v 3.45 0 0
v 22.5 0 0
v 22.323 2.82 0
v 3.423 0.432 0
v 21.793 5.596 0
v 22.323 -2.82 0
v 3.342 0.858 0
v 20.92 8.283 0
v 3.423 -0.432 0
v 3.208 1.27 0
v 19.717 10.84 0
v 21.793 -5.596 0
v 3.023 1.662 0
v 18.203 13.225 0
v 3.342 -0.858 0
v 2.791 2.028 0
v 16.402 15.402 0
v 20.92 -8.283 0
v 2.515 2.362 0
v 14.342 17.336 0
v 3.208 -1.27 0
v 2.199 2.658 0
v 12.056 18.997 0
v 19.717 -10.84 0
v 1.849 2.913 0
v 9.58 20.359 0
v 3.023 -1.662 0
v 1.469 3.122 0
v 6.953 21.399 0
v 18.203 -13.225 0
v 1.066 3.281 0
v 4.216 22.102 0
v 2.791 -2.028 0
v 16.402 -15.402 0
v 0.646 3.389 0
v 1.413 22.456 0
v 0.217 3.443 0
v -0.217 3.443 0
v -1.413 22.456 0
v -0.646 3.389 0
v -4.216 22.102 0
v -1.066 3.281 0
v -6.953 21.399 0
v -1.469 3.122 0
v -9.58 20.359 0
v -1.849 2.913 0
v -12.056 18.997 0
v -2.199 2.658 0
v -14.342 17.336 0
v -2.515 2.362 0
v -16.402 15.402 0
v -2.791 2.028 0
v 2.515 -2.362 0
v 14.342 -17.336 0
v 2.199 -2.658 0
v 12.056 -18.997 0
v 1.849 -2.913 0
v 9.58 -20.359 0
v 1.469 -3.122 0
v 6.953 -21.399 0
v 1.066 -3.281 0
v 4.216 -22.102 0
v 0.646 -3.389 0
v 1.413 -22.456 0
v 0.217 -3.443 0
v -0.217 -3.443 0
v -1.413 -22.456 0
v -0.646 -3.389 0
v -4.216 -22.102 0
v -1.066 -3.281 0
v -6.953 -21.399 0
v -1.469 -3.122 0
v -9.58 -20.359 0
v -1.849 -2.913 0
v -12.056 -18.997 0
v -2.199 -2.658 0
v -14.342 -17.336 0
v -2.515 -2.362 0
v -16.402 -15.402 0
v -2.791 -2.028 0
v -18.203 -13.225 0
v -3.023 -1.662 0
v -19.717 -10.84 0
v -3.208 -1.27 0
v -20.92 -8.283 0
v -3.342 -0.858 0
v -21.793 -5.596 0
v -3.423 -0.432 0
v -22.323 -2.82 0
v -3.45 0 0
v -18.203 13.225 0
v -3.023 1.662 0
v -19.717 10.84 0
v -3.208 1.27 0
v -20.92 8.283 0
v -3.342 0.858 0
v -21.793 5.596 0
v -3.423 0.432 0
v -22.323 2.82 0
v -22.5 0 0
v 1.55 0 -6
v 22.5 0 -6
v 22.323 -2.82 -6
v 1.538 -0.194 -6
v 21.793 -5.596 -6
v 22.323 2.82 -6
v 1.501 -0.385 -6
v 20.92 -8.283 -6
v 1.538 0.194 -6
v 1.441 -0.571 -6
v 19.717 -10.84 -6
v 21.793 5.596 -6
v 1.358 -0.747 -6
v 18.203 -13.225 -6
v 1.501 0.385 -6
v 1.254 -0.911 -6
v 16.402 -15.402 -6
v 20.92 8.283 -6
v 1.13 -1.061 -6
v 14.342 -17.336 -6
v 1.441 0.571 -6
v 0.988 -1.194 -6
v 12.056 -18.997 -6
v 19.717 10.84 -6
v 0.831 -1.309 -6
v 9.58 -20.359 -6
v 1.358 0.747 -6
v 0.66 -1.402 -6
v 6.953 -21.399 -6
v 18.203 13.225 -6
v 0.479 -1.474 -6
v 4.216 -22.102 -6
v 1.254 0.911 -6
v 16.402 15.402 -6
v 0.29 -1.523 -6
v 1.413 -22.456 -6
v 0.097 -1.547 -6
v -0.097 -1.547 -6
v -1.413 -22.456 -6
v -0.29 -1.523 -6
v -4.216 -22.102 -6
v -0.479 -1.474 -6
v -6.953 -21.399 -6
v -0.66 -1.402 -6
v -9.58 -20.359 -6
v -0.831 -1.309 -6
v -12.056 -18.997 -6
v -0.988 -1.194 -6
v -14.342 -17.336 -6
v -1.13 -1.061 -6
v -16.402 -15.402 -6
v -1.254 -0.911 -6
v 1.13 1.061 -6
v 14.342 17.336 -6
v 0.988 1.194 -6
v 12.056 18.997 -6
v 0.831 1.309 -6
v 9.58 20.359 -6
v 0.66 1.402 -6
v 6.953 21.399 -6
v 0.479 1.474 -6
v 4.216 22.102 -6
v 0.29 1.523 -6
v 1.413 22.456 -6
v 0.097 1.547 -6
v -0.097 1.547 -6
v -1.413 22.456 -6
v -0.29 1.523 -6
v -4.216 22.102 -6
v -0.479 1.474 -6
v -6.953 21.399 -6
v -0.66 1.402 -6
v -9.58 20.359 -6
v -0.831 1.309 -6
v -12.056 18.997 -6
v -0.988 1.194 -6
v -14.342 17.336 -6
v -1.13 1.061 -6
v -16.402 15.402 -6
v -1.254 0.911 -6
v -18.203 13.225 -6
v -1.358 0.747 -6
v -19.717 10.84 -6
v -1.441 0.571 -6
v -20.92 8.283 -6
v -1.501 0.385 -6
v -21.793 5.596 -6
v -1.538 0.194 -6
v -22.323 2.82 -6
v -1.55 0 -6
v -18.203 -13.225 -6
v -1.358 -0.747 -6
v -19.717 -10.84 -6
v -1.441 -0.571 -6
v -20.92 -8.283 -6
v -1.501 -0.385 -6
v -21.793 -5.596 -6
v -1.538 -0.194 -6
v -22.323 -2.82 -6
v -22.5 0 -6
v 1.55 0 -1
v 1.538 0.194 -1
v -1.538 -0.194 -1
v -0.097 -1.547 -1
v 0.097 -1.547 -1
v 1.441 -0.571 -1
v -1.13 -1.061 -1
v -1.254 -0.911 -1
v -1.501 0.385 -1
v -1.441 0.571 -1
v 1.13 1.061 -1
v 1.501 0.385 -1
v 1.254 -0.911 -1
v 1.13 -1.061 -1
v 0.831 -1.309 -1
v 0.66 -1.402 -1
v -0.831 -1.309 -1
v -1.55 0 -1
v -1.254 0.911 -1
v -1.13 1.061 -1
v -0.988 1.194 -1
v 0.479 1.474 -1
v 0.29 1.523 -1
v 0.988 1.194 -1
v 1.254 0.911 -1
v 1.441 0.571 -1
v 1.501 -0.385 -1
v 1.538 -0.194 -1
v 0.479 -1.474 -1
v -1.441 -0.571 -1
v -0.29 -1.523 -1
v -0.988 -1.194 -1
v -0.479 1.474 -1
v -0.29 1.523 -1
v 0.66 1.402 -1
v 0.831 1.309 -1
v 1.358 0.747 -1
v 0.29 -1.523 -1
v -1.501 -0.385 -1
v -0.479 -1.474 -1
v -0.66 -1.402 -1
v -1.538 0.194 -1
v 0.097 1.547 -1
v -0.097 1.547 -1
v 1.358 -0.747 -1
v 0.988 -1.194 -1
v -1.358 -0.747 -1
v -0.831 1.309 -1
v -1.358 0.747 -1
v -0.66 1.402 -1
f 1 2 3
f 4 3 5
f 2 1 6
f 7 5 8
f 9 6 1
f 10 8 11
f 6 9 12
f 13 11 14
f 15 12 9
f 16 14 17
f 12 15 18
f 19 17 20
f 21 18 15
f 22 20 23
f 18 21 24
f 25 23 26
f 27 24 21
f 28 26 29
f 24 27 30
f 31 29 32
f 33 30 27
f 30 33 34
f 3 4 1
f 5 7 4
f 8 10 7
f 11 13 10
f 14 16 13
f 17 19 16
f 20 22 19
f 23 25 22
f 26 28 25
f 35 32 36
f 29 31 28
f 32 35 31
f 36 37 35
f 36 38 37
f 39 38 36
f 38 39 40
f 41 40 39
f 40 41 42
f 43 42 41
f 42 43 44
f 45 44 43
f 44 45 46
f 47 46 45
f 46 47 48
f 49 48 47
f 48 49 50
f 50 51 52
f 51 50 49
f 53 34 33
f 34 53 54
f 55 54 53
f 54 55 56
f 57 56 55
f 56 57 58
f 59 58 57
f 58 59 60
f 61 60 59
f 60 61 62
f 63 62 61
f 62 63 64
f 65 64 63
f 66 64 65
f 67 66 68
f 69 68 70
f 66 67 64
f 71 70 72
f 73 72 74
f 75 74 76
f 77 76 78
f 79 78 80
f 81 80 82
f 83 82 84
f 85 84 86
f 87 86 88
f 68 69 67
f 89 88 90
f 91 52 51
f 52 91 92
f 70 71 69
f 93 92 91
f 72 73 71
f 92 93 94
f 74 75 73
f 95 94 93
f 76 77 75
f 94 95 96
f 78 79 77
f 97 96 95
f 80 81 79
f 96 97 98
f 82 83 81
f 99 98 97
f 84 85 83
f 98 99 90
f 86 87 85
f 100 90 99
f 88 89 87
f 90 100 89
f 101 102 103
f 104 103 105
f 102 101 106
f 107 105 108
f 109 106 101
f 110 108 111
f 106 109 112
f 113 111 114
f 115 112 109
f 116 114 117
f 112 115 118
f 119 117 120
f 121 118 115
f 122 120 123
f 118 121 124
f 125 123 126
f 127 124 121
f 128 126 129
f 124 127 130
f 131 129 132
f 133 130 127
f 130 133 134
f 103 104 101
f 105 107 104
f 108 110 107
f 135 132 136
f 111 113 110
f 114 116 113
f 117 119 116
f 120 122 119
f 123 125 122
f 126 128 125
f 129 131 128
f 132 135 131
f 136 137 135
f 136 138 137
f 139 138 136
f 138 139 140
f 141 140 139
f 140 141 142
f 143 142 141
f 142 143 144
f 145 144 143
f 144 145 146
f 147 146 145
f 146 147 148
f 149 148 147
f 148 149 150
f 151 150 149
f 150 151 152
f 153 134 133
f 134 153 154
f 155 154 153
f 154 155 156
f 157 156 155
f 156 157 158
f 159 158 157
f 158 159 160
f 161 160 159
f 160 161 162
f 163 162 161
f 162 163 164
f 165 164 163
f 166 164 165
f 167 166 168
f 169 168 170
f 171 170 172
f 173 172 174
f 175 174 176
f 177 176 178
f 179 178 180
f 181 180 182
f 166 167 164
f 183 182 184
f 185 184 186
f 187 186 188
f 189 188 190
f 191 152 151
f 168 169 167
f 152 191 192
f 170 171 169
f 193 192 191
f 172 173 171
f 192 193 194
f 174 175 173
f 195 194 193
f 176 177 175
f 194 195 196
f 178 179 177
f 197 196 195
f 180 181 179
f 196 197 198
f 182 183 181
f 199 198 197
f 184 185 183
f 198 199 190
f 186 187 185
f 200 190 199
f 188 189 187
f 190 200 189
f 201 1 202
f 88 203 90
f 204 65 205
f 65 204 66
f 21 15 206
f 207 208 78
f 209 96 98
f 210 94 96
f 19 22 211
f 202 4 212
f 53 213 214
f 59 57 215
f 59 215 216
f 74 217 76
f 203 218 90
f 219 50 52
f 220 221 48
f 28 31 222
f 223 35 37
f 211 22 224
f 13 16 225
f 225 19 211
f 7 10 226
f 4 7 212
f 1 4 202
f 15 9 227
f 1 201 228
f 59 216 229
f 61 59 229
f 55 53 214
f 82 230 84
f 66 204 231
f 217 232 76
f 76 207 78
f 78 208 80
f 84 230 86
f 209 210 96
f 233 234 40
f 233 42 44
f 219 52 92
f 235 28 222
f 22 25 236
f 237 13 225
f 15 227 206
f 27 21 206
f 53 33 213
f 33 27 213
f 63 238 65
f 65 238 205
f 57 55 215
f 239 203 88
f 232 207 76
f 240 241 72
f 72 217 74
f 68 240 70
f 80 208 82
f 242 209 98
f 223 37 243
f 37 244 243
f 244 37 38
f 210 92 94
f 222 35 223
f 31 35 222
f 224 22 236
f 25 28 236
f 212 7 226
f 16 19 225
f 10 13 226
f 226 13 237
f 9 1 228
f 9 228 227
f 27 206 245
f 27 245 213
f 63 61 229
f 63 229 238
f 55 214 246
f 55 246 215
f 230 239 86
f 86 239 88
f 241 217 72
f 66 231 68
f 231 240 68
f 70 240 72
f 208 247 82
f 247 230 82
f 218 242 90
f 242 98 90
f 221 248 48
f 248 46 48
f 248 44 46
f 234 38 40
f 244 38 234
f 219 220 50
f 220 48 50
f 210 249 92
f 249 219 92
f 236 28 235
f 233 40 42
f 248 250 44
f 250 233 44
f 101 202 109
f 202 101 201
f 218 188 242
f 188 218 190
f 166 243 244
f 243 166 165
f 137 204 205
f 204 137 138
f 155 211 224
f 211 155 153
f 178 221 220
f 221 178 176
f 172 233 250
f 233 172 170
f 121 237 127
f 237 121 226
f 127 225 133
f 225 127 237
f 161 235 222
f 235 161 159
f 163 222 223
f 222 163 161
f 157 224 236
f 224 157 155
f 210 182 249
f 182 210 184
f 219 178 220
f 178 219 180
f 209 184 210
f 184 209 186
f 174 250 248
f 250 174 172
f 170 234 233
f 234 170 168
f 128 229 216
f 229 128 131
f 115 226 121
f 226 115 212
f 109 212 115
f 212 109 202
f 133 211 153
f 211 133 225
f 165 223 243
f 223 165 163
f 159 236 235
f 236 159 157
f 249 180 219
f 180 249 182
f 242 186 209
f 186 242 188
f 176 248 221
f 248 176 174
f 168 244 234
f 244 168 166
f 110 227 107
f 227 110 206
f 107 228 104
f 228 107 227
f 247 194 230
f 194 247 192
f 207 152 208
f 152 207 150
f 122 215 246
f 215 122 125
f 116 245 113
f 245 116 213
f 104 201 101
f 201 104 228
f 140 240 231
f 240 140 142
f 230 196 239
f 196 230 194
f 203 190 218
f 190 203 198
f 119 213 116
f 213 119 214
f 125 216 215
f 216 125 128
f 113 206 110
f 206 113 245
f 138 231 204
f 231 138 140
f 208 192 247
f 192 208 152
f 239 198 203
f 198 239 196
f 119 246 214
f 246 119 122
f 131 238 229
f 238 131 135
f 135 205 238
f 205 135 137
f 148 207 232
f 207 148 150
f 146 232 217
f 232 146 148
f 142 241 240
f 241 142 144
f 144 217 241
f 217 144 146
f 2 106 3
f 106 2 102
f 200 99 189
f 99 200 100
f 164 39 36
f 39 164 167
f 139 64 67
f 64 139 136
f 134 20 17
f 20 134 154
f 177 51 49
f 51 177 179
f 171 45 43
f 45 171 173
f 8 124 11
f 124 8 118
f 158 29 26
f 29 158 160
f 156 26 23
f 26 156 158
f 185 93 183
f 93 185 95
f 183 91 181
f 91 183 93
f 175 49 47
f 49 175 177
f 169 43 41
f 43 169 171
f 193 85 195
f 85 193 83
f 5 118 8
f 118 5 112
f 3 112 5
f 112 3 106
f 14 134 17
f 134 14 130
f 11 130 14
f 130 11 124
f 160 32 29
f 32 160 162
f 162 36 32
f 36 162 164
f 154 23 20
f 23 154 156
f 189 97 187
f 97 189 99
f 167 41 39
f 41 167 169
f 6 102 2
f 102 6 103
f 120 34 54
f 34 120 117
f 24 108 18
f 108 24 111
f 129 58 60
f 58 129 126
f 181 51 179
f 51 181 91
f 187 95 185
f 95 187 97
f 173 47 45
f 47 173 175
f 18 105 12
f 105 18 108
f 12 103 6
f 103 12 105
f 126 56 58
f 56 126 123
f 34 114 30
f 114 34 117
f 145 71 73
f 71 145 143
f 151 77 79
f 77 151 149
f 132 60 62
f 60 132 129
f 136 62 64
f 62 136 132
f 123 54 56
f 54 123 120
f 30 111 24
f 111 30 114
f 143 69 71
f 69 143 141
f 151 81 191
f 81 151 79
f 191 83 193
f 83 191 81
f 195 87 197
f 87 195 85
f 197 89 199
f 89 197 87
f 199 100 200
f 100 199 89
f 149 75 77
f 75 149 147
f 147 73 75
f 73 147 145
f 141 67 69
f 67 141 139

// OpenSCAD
$fn = 50;


difference() {
	union() {
		translate(v = [0, 0, -6.0000000000]) {
			cylinder(h = 6, r = 22.5000000000);
		}
	}
	union() {
		translate(v = [0, 0, 0]) {
			rotate(a = [0, 0, 0]) {
				difference() {
					union() {
						translate(v = [0, 0, -6.0000000000]) {
							cylinder(h = 6, r = 1.2500000000);
						}
						translate(v = [0, 0, -1.0000000000]) {
							cylinder(h = 1.0000000000, r1 = 1.5500000000, r2 = 3.4500000000);
						}
						translate(v = [0, 0, -6.0000000000]) {
							cylinder(h = 6, r = 1.5500000000);
						}
						translate(v = [0, 0, -6.0000000000]) {
							cylinder(h = 6, r = 1.2500000000);
						}
					}
					union();
				}
			}
		}
	}
}
